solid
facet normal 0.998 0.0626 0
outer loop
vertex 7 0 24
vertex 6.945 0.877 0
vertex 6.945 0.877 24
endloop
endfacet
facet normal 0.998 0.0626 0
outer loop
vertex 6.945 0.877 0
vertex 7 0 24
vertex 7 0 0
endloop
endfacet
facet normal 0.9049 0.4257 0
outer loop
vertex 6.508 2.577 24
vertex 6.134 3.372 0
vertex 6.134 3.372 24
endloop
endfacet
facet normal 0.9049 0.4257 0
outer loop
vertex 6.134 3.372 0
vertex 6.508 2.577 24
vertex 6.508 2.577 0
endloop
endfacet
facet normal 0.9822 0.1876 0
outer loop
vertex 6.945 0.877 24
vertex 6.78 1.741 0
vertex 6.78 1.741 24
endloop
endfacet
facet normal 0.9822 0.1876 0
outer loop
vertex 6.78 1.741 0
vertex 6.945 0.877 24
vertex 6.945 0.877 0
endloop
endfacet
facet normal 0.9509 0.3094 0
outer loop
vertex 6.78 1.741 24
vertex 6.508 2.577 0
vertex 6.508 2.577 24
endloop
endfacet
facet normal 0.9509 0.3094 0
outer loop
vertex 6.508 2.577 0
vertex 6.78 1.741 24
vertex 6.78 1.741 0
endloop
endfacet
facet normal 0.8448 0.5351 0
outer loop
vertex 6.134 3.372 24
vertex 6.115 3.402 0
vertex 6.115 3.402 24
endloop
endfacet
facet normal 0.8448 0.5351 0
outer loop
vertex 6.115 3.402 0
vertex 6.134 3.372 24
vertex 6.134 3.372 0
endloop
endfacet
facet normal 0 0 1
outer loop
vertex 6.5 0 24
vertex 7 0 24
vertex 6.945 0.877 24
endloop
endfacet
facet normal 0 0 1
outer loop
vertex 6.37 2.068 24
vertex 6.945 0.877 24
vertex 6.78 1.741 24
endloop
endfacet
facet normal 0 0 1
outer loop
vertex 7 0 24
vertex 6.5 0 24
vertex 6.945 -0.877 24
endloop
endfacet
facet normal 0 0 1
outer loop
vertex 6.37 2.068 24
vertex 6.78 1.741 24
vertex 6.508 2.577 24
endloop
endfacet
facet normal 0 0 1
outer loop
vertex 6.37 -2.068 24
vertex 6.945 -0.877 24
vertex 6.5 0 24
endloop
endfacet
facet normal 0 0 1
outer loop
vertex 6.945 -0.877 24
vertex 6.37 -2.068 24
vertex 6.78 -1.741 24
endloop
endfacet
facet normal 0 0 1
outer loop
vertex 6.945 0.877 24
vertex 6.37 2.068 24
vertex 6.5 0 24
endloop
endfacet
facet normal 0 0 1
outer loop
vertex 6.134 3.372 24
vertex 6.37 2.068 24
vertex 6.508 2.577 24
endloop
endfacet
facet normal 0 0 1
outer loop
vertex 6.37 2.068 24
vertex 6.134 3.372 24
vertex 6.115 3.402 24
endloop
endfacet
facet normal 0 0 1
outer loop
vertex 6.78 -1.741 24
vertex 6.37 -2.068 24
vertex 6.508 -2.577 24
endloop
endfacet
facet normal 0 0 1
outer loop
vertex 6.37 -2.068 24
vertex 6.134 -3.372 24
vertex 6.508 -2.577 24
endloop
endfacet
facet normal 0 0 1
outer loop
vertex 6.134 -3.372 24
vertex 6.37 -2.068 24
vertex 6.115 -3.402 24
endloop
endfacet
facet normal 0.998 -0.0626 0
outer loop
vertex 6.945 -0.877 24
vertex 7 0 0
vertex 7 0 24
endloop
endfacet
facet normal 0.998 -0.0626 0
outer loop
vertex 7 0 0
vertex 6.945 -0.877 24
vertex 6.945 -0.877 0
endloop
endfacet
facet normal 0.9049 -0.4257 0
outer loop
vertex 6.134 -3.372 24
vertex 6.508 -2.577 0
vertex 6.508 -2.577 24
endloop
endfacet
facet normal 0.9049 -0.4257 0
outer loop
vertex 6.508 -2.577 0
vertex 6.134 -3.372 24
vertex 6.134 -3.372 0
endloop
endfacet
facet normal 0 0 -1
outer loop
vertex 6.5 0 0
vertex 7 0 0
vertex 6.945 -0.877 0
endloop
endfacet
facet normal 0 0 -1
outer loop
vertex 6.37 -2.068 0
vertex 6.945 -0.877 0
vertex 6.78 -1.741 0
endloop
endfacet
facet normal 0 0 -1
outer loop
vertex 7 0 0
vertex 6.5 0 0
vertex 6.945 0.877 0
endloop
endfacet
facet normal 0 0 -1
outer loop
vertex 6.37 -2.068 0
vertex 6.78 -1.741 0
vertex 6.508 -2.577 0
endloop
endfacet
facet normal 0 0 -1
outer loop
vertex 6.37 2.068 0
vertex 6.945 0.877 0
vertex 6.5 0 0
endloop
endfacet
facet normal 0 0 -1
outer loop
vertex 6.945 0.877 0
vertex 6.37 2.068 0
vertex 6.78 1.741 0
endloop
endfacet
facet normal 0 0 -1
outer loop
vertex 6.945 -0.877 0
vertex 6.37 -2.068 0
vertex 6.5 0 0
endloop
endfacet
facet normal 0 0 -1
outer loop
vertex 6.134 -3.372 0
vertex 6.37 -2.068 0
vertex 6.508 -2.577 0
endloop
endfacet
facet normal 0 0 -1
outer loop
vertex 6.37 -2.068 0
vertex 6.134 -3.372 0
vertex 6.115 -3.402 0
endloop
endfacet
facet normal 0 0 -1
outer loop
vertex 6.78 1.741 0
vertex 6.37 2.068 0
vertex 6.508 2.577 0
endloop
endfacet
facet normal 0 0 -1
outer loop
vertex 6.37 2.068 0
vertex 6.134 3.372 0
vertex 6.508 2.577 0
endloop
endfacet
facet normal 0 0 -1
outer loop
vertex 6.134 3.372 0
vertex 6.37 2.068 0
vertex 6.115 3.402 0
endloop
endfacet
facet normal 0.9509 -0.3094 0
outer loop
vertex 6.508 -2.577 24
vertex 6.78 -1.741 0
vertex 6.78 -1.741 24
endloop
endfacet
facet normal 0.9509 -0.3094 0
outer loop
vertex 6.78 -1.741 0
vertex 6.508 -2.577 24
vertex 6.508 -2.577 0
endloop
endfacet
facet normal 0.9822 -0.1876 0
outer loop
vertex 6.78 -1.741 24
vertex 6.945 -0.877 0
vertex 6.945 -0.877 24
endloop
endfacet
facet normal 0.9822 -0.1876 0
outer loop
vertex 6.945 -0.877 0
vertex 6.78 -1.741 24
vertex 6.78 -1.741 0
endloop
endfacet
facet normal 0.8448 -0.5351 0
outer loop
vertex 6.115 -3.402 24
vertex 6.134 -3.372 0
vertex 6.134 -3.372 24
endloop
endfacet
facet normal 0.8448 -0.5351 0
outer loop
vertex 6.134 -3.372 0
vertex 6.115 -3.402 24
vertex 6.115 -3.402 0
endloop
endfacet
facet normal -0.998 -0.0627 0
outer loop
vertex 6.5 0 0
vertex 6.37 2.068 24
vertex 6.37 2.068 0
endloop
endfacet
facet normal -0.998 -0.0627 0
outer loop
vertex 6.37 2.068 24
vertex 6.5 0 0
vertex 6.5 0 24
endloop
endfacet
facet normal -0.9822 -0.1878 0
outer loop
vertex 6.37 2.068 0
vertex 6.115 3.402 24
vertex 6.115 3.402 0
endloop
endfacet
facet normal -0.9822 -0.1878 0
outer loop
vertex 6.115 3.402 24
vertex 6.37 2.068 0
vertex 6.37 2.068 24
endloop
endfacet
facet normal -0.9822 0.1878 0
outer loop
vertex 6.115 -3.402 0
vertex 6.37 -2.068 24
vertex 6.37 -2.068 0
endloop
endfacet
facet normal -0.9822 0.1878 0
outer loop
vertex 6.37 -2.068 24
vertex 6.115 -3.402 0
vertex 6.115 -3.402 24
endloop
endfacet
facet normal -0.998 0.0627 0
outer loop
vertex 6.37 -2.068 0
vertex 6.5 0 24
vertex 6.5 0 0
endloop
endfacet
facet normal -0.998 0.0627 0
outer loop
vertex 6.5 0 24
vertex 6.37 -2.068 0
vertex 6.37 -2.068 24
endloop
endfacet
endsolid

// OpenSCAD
$fn = 50;


difference() {
	union() {
		cylinder(h = 24, r = 7.0000000000);
		translate(v = [-13.0000000000, 0, 0]) {
			cylinder(h = 24, r = 7.0000000000);
		}
	}
	union() {
		cylinder(h = 24, r = 3.2500000000);
		cylinder(h = 24, r = 1.8000000000);
		cylinder(h = 24, r = 1.8000000000);
		cylinder(h = 24, r = 1.8000000000);
		translate(v = [-17.5000000000, 0, 0]) {
			hull() {
				translate(v = [-3.7500000000, 0.0000000000, 0]) {
					cylinder(h = 24, r = 7.5000000000);
				}
				translate(v = [3.7500000000, 0.0000000000, 0]) {
					cylinder(h = 24, r = 7.5000000000);
				}
				translate(v = [-3.7500000000, -0.0000000000, 0]) {
					cylinder(h = 24, r = 7.5000000000);
				}
				translate(v = [3.7500000000, -0.0000000000, 0]) {
					cylinder(h = 24, r = 7.5000000000);
				}
			}
		}
		translate(v = [-10.0000000000, 0, 0.0000000000]) {
			cylinder(h = 24, r = 16.5000000000);
		}
	}
}
